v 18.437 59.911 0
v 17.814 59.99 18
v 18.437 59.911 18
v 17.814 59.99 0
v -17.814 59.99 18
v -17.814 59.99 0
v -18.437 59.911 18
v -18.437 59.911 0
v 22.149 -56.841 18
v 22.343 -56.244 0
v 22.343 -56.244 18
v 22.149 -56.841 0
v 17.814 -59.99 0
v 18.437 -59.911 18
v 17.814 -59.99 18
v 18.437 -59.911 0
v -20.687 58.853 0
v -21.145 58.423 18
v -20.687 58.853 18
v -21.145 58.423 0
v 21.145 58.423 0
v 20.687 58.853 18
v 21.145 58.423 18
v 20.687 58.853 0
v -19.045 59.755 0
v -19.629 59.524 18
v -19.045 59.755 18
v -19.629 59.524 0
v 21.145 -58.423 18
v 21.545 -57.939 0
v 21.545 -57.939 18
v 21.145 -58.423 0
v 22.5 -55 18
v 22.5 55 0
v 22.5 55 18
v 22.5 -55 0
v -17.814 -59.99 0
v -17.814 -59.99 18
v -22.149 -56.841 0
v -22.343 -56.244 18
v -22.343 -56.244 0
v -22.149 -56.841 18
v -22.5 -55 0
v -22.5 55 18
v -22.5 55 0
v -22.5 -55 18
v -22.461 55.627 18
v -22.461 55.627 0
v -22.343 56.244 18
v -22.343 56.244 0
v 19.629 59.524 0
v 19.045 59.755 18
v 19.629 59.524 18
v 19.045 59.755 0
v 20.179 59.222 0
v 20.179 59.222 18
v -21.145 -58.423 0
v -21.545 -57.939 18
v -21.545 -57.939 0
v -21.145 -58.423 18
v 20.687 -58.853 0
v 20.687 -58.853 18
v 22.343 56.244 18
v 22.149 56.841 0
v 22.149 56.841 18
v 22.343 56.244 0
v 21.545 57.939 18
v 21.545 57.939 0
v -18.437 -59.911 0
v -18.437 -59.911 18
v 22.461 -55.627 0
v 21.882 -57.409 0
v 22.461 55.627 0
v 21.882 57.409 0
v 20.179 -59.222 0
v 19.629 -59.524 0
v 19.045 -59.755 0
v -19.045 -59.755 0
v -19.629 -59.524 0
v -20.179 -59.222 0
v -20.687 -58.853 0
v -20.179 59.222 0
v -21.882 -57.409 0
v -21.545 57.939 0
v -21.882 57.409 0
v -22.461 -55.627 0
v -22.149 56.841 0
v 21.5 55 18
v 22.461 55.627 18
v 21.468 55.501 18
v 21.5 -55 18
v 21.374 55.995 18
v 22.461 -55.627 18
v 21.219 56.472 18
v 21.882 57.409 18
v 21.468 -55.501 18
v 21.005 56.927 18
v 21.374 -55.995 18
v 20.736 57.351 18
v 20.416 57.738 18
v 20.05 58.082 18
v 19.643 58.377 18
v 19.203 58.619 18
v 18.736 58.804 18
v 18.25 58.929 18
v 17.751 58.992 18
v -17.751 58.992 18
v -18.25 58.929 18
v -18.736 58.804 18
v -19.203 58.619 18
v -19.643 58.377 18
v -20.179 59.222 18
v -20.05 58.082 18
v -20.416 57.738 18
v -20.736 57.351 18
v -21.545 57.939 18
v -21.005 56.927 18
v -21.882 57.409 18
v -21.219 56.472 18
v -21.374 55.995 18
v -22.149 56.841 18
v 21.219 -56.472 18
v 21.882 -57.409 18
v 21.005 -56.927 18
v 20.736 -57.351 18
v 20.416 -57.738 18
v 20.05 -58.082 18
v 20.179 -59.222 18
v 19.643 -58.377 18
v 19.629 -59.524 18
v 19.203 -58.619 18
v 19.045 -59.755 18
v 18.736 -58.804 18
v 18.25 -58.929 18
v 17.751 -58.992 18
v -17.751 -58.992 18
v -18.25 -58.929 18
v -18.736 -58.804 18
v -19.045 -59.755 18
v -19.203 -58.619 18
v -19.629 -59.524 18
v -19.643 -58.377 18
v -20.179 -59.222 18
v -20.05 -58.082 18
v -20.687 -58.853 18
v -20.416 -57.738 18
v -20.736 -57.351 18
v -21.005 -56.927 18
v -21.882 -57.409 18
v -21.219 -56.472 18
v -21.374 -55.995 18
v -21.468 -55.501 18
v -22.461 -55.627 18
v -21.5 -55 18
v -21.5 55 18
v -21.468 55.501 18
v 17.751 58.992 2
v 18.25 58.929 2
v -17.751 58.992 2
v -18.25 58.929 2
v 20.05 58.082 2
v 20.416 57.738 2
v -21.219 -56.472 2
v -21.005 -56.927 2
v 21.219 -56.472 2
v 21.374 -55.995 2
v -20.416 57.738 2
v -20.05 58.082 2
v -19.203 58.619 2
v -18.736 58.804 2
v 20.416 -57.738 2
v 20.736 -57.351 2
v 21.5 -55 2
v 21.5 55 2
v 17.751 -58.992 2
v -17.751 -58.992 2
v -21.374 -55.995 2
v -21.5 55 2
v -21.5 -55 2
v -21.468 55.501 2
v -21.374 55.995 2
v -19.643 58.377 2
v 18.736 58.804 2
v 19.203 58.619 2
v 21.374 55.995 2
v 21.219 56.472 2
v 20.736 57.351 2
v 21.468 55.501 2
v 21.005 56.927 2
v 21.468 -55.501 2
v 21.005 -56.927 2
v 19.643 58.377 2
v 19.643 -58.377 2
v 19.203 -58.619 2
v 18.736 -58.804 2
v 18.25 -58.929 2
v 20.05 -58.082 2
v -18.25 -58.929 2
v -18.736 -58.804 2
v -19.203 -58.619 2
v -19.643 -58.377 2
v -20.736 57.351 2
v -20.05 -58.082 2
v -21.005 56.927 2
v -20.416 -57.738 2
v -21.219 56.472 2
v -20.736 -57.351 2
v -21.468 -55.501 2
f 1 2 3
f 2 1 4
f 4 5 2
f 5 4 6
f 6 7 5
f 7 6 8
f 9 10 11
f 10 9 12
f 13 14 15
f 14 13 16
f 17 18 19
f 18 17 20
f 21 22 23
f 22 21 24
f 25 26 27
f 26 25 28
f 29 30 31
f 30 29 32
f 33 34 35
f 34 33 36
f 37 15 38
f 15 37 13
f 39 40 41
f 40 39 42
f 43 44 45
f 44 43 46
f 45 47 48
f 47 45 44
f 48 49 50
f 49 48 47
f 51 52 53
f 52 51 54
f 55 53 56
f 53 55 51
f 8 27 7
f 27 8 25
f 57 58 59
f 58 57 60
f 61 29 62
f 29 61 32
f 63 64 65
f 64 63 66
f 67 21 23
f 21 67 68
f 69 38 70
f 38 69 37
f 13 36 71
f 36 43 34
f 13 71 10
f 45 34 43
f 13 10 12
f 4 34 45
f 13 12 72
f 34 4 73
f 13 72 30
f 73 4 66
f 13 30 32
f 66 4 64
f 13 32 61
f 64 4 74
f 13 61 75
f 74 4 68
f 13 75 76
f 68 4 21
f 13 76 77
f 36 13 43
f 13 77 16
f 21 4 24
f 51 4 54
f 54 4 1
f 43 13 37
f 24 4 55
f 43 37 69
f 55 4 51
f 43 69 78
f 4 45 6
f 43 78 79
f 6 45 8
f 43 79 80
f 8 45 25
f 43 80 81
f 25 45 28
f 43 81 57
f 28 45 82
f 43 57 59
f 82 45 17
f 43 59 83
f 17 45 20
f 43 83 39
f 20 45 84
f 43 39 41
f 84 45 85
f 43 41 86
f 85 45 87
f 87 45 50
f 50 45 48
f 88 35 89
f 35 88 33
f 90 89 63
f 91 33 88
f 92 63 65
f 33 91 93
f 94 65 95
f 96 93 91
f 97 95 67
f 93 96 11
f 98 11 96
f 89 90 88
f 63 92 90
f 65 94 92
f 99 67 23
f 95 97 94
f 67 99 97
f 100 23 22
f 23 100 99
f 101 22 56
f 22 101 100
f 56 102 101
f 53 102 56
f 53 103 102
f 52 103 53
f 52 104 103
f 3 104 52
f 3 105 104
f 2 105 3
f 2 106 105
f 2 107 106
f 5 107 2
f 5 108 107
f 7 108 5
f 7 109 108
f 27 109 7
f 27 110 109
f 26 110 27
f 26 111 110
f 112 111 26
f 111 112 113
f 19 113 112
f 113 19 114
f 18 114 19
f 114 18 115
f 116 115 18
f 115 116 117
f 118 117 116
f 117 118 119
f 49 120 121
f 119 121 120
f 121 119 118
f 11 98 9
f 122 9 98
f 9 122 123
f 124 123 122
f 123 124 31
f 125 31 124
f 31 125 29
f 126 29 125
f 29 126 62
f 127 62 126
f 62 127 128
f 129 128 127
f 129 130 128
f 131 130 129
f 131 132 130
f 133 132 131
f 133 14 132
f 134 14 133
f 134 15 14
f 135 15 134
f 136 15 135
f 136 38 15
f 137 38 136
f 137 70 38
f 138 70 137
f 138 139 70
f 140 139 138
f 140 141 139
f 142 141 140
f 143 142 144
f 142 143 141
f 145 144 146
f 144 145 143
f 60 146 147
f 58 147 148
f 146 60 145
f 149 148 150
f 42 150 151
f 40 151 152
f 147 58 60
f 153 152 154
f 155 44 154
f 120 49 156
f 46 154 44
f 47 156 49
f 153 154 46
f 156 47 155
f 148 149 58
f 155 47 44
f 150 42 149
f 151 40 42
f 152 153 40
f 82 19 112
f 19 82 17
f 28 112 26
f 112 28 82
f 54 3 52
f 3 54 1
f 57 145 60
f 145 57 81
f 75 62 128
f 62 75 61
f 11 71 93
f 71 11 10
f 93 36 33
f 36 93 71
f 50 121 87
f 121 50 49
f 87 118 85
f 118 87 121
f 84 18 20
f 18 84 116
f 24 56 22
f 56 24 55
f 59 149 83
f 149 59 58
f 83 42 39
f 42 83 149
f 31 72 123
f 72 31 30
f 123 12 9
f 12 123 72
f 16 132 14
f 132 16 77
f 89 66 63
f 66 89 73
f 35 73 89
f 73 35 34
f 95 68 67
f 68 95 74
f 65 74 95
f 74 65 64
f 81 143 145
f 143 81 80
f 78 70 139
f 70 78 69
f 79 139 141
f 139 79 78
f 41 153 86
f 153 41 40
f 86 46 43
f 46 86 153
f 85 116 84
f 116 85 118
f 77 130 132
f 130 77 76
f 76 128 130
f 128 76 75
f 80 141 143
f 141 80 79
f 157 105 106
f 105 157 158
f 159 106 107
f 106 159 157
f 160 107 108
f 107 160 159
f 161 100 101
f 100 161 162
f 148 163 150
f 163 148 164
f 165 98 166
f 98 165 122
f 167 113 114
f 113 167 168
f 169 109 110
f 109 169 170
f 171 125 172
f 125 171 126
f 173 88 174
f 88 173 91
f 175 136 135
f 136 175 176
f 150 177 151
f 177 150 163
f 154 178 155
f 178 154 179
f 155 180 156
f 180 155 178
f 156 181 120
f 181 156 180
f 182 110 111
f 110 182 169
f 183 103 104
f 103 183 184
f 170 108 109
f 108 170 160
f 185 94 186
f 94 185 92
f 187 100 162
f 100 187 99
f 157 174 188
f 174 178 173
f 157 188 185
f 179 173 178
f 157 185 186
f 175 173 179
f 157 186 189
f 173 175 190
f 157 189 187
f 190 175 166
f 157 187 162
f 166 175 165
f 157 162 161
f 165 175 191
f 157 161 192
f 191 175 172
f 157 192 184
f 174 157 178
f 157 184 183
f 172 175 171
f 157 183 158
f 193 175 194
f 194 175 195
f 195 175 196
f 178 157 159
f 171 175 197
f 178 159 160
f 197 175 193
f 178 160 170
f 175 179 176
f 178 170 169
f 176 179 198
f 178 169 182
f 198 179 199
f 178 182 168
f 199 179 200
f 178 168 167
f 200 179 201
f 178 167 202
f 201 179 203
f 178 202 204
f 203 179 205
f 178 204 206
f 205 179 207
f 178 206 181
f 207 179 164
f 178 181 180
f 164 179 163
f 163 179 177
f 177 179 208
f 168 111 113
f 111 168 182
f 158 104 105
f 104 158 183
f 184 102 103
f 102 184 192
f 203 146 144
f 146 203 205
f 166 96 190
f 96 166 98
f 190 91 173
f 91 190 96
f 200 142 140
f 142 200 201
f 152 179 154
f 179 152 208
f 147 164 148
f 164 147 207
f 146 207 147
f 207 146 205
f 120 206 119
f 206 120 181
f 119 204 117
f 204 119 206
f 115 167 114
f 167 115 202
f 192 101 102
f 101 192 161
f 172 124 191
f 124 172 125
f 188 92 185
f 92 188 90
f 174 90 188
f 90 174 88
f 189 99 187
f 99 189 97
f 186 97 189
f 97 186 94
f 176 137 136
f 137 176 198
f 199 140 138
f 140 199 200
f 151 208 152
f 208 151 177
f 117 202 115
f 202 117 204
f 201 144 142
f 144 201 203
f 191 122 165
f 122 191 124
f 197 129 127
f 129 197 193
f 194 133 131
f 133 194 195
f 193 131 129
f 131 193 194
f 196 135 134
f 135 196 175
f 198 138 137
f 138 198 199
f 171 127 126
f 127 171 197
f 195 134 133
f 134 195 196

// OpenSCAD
$fn = 50;


difference() {
	union() {
		hull() {
			translate(v = [-17.5000000000, 55.0000000000, 0]) {
				cylinder(h = 18, r = 5);
			}
			translate(v = [17.5000000000, 55.0000000000, 0]) {
				cylinder(h = 18, r = 5);
			}
			translate(v = [-17.5000000000, -55.0000000000, 0]) {
				cylinder(h = 18, r = 5);
			}
			translate(v = [17.5000000000, -55.0000000000, 0]) {
				cylinder(h = 18, r = 5);
			}
		}
	}
	union() {
		translate(v = [0, 0, 2]) {
			hull() {
				translate(v = [-17.5000000000, 55.0000000000, 0]) {
					cylinder(h = 16, r = 4);
				}
				translate(v = [17.5000000000, 55.0000000000, 0]) {
					cylinder(h = 16, r = 4);
				}
				translate(v = [-17.5000000000, -55.0000000000, 0]) {
					cylinder(h = 16, r = 4);
				}
				translate(v = [17.5000000000, -55.0000000000, 0]) {
					cylinder(h = 16, r = 4);
				}
			}
		}
	}
}
